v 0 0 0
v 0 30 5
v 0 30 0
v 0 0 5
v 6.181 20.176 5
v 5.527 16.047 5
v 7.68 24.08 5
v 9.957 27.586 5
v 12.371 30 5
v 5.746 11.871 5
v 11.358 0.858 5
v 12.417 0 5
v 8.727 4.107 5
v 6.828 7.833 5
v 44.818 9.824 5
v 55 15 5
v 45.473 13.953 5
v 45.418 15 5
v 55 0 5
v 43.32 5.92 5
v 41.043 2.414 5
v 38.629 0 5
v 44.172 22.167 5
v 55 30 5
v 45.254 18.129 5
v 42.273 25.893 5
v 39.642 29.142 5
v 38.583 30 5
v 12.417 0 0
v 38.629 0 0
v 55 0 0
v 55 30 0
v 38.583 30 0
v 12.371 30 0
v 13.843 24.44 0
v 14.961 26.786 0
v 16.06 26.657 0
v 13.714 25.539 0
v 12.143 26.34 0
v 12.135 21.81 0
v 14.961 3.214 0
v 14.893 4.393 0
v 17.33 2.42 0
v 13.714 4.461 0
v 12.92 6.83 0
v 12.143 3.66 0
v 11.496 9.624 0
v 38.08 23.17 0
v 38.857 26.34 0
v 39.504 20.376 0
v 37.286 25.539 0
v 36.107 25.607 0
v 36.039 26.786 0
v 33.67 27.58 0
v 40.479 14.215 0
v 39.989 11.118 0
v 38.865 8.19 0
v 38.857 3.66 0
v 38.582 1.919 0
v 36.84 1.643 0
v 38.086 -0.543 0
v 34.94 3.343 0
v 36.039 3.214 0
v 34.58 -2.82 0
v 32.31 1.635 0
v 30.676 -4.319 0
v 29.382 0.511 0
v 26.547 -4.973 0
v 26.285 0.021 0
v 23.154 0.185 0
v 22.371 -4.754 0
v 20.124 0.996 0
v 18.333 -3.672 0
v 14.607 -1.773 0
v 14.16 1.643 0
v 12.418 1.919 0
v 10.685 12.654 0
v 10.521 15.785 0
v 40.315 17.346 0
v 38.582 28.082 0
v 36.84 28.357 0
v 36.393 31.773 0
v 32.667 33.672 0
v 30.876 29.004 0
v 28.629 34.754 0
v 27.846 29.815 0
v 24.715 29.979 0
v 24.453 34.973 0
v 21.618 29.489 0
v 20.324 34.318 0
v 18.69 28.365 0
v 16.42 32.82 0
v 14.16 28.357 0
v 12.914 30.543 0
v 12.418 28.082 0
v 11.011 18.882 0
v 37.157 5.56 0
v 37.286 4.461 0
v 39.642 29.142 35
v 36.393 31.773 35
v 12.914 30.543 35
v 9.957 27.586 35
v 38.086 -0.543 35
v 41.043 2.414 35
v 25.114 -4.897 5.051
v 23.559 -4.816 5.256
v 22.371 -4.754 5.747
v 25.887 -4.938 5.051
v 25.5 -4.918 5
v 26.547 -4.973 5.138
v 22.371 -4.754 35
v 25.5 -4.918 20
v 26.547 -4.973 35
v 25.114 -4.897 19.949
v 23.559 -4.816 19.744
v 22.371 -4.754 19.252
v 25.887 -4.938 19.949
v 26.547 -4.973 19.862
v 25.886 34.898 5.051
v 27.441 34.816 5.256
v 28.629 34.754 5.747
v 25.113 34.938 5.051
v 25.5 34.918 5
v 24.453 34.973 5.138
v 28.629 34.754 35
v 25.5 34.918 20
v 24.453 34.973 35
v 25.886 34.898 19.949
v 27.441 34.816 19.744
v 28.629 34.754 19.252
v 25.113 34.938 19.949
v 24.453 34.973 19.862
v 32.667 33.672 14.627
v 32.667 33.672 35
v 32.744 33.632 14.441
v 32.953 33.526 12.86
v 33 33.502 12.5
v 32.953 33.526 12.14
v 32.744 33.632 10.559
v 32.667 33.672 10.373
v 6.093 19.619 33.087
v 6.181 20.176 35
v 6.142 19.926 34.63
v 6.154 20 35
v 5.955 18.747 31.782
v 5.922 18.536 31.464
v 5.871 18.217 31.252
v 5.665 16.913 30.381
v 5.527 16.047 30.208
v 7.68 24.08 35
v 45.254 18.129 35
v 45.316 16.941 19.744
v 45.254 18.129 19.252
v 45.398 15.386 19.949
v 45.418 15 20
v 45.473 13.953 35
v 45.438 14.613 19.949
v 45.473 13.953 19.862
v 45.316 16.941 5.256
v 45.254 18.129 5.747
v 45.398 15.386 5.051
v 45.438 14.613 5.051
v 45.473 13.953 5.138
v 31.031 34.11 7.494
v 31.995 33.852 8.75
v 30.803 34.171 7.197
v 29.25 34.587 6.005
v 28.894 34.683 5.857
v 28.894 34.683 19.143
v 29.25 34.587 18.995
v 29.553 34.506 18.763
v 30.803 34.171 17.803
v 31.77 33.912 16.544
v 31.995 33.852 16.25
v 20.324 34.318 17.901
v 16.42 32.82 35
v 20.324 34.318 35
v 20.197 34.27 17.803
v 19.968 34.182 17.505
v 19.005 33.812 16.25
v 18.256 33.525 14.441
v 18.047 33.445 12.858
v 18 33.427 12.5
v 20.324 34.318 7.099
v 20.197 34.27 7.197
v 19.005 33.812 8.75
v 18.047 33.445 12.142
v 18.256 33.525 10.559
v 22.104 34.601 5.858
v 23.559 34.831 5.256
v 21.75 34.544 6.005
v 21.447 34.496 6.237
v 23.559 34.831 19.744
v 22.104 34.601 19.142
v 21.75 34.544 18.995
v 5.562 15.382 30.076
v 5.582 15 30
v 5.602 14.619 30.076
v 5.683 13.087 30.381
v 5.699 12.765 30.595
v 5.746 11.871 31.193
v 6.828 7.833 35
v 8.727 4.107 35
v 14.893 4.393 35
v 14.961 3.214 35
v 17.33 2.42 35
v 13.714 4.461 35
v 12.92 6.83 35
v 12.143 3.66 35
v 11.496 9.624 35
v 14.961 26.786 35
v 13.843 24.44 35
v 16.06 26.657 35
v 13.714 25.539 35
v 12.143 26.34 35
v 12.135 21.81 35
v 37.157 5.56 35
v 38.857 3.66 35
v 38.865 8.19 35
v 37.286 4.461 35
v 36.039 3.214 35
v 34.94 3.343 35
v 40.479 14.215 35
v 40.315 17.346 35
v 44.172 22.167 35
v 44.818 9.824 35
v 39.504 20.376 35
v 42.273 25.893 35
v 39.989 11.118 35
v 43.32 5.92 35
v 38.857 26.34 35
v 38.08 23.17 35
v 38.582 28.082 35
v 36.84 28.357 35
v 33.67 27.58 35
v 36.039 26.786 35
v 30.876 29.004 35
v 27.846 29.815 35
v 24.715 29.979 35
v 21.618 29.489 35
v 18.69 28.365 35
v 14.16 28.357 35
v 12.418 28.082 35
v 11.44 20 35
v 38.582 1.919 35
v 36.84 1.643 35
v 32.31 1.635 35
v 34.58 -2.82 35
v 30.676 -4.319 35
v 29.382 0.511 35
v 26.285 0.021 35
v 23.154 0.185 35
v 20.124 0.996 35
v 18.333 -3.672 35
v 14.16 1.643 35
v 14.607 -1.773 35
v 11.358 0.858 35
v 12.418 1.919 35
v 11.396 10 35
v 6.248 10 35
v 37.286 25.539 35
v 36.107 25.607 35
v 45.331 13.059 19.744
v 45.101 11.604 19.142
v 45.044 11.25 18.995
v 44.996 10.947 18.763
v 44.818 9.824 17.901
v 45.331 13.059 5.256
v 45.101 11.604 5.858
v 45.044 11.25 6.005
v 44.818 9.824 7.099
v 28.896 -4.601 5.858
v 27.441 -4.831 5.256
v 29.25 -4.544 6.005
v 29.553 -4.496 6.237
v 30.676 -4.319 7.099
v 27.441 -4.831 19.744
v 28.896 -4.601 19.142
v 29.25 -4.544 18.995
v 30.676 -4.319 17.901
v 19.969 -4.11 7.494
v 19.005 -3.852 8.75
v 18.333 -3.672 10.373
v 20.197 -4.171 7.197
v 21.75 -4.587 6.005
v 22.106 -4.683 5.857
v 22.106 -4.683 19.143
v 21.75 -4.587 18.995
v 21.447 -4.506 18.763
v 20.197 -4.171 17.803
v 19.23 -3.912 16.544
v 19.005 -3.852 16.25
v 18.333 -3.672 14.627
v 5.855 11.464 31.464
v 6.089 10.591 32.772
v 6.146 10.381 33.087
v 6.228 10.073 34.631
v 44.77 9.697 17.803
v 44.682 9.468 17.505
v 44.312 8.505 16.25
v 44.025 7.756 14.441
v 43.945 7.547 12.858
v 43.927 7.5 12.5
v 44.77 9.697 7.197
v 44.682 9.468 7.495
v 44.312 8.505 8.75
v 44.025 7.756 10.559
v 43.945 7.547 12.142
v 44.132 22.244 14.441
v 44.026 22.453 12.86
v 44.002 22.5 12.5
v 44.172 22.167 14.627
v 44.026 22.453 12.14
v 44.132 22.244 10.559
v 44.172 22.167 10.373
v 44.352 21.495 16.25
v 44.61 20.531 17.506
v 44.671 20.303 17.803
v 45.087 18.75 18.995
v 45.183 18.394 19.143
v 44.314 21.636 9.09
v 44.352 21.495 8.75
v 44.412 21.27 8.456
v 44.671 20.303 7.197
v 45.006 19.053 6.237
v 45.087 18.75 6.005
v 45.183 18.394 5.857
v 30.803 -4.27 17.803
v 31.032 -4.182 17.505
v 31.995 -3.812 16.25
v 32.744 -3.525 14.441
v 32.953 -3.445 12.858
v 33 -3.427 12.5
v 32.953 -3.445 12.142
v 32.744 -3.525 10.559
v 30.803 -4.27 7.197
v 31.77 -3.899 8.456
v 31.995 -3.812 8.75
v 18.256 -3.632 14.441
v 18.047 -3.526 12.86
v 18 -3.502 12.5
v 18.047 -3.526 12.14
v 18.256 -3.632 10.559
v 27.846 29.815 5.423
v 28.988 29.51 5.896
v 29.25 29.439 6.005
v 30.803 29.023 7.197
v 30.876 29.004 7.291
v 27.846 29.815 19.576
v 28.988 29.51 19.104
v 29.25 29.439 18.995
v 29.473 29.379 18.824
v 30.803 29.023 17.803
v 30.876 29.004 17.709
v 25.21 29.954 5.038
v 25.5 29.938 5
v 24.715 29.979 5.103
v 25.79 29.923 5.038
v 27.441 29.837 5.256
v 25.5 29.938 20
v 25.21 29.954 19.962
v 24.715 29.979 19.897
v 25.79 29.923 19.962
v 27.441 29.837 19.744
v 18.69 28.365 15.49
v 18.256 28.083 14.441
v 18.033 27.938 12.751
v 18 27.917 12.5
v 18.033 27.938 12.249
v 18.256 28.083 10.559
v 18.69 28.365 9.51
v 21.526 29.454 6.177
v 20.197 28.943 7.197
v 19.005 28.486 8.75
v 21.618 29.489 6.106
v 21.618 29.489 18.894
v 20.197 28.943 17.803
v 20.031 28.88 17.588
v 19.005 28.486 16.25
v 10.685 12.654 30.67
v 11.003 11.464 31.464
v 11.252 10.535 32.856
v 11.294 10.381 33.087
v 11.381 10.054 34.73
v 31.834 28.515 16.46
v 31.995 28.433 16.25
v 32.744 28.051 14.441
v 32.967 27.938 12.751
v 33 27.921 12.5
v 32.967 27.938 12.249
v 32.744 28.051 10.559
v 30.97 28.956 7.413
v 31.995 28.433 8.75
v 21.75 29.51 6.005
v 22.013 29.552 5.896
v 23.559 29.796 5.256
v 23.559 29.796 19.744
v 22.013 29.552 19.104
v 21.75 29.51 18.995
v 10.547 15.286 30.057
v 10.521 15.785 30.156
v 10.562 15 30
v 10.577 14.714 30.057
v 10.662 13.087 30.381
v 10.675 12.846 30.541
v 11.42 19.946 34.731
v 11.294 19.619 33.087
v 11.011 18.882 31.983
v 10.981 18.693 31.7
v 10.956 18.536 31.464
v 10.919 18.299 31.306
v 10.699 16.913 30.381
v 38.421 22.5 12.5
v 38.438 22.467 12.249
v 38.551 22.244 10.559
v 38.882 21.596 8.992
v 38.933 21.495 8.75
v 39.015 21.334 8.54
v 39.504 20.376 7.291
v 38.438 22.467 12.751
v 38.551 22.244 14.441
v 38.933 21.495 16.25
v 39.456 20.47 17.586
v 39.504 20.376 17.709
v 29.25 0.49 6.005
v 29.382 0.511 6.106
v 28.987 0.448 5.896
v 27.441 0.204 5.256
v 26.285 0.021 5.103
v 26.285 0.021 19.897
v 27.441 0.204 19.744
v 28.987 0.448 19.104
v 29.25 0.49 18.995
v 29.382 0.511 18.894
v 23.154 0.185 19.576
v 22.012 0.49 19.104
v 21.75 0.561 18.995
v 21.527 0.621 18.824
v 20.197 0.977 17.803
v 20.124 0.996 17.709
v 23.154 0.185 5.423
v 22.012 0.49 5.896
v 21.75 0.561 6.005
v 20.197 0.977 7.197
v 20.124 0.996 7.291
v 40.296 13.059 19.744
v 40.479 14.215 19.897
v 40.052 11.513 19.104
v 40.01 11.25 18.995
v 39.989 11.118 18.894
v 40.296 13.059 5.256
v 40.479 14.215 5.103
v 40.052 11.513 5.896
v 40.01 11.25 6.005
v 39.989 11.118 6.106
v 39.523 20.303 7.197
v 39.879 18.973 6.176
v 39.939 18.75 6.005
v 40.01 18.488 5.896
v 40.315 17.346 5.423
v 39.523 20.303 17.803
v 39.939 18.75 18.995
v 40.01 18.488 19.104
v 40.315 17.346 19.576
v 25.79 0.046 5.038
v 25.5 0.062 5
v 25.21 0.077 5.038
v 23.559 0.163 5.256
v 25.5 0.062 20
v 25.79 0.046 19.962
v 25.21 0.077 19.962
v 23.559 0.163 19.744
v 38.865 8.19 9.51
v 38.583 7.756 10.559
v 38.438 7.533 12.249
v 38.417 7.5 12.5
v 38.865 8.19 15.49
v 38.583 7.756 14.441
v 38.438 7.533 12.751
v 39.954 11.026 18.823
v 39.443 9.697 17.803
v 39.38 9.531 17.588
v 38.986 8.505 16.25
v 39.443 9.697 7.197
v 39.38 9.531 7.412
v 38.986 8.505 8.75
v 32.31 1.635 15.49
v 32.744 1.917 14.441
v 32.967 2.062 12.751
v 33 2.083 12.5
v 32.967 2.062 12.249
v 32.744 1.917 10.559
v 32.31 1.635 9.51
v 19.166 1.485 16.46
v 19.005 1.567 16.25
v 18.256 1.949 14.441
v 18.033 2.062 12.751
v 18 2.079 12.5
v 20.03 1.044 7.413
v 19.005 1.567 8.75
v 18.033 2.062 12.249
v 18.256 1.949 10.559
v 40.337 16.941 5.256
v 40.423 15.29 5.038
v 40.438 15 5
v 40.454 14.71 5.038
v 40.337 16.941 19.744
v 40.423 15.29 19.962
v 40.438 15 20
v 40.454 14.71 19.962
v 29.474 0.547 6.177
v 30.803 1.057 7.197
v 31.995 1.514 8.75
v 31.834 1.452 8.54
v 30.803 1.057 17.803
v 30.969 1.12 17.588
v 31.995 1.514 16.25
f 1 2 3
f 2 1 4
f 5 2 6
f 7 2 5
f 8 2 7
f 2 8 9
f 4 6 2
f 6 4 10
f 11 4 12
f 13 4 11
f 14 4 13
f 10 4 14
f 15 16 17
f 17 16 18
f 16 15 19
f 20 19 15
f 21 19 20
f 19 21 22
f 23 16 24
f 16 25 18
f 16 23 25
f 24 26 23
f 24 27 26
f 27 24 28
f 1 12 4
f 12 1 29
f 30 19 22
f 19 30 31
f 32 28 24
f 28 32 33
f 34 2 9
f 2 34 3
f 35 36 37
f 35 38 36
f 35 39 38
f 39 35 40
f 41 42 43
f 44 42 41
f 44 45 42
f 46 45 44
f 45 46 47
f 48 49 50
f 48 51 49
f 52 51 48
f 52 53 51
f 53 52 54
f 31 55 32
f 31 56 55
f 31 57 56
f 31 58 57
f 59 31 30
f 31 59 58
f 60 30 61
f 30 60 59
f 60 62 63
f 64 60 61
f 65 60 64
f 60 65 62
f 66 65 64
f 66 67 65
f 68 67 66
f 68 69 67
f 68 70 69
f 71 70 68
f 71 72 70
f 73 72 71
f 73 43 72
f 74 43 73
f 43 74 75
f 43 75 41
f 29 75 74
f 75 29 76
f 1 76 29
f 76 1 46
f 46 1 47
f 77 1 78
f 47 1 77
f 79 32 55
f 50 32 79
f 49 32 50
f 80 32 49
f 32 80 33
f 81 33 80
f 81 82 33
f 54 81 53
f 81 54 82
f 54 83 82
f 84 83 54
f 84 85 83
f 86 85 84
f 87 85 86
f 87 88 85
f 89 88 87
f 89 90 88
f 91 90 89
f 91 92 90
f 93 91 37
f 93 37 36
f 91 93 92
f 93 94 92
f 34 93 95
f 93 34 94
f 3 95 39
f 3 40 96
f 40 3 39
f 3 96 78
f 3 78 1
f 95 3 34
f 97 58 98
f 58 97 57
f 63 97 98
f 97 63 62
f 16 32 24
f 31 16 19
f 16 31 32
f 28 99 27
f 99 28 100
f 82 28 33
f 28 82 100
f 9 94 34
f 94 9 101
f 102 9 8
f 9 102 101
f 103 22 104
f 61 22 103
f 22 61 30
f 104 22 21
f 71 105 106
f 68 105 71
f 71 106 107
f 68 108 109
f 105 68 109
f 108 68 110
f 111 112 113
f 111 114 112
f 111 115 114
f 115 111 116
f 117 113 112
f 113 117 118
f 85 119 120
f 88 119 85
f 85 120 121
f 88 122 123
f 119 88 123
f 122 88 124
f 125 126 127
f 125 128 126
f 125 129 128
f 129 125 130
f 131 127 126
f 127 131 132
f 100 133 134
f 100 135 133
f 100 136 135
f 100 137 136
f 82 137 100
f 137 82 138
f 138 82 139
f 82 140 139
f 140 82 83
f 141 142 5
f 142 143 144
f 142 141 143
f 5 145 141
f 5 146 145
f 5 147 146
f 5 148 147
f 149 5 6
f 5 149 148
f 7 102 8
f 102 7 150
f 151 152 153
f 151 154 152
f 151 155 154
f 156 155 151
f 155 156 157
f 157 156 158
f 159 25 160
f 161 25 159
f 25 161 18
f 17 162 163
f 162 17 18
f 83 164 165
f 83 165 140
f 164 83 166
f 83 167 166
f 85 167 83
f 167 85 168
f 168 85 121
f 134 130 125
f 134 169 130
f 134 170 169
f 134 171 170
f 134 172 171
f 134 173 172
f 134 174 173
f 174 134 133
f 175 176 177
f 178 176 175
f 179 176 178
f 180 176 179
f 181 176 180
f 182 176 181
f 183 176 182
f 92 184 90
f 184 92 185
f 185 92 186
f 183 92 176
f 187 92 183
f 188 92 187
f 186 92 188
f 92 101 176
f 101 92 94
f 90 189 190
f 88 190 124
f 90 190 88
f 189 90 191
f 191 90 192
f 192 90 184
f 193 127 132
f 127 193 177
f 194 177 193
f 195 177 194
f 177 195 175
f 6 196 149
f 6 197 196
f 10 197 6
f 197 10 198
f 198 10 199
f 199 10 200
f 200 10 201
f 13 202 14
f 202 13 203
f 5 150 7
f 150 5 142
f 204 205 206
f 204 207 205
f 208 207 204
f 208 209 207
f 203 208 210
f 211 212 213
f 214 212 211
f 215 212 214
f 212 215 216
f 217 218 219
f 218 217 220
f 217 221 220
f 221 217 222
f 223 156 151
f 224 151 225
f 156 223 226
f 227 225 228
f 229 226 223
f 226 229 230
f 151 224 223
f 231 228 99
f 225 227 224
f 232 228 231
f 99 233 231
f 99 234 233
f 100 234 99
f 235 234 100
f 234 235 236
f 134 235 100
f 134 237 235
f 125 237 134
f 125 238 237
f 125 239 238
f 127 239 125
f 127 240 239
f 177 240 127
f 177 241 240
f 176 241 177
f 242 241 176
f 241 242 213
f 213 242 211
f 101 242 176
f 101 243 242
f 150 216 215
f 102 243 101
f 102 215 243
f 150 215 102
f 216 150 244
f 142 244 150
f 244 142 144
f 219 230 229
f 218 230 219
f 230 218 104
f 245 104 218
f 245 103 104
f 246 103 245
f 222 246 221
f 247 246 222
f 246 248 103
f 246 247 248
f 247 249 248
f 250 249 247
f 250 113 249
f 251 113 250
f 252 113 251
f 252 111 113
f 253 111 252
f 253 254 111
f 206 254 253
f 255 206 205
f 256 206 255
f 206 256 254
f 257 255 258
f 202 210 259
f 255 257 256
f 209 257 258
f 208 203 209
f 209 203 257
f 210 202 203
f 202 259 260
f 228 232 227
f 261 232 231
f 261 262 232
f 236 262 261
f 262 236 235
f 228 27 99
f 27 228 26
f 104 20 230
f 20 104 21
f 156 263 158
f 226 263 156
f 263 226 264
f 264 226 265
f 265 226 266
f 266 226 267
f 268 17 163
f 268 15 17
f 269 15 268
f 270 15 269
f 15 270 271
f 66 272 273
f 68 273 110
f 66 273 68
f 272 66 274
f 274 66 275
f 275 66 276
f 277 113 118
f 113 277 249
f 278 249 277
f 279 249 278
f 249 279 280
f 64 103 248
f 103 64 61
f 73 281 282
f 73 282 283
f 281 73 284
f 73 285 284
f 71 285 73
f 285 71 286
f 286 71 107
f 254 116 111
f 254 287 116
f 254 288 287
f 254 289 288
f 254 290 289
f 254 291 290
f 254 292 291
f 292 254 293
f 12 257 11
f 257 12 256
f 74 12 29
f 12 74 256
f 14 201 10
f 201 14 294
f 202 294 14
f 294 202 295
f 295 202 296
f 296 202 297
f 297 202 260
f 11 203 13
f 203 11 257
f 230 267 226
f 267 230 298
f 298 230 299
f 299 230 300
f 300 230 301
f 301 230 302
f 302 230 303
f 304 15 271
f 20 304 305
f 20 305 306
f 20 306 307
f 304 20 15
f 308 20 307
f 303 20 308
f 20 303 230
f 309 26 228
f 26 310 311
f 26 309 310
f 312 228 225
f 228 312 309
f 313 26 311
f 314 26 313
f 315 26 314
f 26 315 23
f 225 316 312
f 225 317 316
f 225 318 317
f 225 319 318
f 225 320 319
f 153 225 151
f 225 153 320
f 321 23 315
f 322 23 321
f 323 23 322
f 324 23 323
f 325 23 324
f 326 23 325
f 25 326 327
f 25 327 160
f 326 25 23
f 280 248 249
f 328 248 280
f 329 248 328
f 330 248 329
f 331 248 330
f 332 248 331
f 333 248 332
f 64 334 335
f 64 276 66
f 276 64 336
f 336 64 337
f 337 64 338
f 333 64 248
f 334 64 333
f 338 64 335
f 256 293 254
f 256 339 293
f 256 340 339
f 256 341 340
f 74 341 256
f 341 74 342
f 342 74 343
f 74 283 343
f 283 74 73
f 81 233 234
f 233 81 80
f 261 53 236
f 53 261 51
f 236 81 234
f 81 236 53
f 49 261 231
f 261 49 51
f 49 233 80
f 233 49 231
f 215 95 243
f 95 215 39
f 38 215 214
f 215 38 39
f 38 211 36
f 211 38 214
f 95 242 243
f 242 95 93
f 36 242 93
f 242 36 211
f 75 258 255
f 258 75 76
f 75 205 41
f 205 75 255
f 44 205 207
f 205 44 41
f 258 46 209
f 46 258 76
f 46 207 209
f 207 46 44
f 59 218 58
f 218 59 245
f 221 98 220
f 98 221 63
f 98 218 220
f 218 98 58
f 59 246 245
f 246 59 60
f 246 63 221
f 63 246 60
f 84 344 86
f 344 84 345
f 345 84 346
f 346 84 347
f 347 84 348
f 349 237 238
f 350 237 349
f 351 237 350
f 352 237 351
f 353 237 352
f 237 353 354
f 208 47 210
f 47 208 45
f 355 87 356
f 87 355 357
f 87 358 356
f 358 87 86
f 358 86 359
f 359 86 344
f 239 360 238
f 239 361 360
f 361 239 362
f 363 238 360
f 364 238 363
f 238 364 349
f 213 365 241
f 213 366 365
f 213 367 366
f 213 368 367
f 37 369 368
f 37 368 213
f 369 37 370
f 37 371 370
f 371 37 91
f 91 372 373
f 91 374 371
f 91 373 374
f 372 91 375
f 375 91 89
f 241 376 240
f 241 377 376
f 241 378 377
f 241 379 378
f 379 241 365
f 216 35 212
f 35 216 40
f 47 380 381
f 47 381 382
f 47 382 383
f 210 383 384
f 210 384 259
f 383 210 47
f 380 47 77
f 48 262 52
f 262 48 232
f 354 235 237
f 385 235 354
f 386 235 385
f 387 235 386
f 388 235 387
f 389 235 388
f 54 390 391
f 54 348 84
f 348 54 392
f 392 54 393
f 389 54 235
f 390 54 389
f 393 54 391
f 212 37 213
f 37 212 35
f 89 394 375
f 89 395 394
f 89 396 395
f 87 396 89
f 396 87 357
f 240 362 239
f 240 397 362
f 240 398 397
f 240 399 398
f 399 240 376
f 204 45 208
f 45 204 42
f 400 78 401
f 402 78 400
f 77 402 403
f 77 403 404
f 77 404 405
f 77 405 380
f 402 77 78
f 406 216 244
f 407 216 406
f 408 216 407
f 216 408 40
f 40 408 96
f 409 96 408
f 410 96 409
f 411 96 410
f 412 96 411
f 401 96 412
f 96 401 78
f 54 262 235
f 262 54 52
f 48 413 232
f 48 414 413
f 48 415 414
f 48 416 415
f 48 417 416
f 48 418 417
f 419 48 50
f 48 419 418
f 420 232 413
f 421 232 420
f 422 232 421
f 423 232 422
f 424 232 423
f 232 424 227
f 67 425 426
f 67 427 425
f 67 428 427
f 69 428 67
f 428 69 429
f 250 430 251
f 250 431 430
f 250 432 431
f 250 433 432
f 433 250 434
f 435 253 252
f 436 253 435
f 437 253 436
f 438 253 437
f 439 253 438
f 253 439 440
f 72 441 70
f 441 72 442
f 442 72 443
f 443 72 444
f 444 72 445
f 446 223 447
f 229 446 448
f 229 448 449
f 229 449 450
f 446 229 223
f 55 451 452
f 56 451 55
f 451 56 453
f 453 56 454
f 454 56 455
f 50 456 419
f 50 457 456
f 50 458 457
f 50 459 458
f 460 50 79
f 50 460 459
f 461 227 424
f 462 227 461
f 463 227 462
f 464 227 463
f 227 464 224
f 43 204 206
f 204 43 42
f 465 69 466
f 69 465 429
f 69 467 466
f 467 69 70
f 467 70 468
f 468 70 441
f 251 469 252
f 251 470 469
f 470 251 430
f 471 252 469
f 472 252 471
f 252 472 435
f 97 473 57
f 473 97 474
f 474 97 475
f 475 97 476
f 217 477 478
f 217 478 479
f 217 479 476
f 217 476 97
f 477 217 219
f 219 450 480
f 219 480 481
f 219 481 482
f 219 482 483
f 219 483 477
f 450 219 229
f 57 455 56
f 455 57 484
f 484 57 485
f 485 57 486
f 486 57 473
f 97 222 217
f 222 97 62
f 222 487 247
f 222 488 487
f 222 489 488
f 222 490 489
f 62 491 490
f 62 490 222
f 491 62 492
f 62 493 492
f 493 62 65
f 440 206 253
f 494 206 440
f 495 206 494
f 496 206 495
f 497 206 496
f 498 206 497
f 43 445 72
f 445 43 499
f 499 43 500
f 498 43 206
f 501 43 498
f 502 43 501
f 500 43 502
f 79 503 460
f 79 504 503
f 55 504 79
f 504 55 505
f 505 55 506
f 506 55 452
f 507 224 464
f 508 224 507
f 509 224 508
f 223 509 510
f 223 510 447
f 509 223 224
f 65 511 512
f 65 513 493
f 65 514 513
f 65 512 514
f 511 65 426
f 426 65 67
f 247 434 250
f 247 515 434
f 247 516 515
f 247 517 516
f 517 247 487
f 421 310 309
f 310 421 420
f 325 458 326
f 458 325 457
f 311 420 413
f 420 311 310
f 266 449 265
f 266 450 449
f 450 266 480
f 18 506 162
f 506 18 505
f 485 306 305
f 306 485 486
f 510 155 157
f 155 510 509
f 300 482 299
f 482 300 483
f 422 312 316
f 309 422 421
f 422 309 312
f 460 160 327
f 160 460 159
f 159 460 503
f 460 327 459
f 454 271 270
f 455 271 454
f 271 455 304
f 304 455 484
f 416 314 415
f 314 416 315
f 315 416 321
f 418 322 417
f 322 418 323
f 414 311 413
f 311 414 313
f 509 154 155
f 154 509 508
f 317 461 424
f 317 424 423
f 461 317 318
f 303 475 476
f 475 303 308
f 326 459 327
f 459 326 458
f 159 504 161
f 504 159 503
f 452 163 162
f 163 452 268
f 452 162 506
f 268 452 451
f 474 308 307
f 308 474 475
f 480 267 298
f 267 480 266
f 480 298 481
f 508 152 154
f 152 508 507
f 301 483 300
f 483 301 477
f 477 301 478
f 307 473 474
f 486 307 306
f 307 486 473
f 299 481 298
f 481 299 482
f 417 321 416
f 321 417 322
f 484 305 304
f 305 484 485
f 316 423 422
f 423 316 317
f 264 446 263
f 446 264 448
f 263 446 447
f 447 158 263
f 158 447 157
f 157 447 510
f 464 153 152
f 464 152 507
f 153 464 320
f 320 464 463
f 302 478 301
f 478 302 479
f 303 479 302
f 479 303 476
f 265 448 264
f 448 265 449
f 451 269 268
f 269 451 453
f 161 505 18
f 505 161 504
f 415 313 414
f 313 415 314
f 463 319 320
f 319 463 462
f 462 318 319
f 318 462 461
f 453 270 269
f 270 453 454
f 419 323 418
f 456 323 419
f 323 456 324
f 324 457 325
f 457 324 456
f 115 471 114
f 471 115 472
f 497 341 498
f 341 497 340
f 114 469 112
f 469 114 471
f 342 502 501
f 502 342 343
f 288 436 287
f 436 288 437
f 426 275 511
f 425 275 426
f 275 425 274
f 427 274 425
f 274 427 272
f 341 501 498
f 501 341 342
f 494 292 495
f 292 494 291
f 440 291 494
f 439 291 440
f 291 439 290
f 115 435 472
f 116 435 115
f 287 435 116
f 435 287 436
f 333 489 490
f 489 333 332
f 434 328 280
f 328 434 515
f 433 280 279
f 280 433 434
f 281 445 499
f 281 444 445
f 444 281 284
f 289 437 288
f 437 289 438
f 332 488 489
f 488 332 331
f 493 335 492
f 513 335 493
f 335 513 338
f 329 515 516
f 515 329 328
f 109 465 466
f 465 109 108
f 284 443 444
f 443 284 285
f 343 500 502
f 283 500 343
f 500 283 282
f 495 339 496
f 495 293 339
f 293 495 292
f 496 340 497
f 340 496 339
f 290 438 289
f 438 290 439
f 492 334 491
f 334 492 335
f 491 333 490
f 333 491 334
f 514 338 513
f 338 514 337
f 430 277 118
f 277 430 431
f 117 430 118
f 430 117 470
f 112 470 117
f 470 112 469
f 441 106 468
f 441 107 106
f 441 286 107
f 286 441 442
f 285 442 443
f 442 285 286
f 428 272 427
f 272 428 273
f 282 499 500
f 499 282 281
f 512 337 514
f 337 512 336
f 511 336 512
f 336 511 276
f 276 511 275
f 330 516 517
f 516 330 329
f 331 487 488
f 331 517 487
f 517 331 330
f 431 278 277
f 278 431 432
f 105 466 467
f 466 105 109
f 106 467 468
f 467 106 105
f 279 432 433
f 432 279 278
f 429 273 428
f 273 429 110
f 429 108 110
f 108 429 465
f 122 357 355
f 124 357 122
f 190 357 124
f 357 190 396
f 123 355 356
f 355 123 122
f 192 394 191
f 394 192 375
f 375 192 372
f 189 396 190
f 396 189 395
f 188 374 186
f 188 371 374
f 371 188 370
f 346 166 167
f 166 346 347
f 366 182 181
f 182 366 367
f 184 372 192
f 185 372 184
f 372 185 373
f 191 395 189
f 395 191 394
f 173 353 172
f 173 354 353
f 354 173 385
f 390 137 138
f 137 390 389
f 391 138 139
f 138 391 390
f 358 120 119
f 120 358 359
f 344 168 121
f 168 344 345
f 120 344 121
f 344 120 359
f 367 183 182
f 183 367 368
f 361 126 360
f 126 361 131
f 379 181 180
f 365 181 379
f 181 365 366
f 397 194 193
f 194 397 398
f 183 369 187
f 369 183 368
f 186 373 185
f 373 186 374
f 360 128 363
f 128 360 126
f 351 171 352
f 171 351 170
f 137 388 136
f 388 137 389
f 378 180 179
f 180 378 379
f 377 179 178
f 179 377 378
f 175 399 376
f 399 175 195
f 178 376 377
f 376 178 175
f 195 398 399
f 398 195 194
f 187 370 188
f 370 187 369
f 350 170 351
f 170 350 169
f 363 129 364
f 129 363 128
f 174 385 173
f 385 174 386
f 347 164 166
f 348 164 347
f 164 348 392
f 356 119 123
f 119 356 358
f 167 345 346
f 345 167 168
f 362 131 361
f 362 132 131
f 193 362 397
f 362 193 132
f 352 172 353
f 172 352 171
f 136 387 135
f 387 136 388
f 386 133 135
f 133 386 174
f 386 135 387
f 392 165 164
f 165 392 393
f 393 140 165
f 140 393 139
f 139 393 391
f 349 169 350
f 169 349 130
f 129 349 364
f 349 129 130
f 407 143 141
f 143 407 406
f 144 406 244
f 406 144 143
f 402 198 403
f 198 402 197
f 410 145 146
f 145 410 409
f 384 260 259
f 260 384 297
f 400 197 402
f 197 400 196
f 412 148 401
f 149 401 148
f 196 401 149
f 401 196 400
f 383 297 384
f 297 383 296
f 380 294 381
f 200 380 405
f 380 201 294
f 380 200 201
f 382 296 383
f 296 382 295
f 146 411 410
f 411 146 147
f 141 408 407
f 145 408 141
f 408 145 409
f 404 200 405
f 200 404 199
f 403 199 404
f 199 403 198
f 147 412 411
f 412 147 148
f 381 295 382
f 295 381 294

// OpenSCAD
// file: motor.scad
/*
    Motor mounts for the OpenSCAD aeroplane

    Copyright (C) Tim Molteno, tim@molteno.net

    
    This program is free software: you can redistribute it and/or modify
    it under the terms of the GNU General Public License as published by
    the Free Software Foundation, either version 3 of the License, or
    (at your option) any later version.

    This program is distributed in the hope that it will be useful,
    but WITHOUT ANY WARRANTY; without even the implied warranty of
    MERCHANTABILITY or FITNESS FOR A PARTICULAR PURPOSE.  See the
    GNU General Public License for more details.

    You should have received a copy of the GNU General Public License
    along with this program.  If not, see <http://www.gnu.org/licenses/>.
*/

module motor_mount() {
  difference() {
    union() {
      cylinder(r=6.5, h=10);
      translate([0,0,0.75]) cube([26,7 ,1.5], center=true);
      translate([0,0,0.75]) cube([7, 26,1.5], center=true);
    }
    cylinder(r=4, h=12, center=true);
    for (angle = [0,90,180,270]) {
      rotate(angle) translate([10,0,0]) cylinder(r=1.5, h=5, center=true);
    }
  }
}

/* Turnigy 2730-1500 */
module motor() {
  rotate([0,90,0]) {
    motor_mount();
    color("silver") cylinder(r=1.5, h=42); // shaft
    color("gold") translate([0,0,3]) cylinder(r=4, h=15); // housing
    color("red") translate([0,0,18]) cylinder(r=13.5, h=10); // outrunner
    translate([0,0,28]) cylinder(r=4, h=4.5); // forward housing
  }
}


/* Turnigy nano-tech 300mAH 2S 35-70C */
module battery() {
  cube([46, 18,12.5], center=true);
}


/* Servo. Turnigy TG9e */

module servo() {
  translate([-6, -11.5,0]) cube([12, 23, 23]);
  translate([-6,-16.25,16.5]) cube([12, 32.5, 2]);
  translate([0,0,23]) cylinder(r=6, h=4);
  translate([0,0,27]) cylinder(r=2.5, h=2.5);
}

module servo_arm() {
  cylinder(r=3.5, h=4);
  translate([0,0,2.5]) hull() {
    cylinder(r=3.5, h=1.5);
    translate([14,0,0]) cylinder(r=2, h=1.5);
  }
}

motor();
// main file
use <motor.scad>;

width = 72;
radius = 17;
length = 65;

mount_offset = 17;

translateY = width-2*radius;
translateX = length-2*radius;
 module pillar() {
     difference() {
         cylinder(h=35, r=4, $fn=31);
     }
 } 
  module motorMount() {
     cylinder(r=20, h= 35);
  }

  module holes() {
     for (angle = [0,90,180,270]) {
      rotate(angle) translate([mount_offset,0,0]) cylinder(r=1.5, h = 100,center=true);
     }
     translate([0,0,-1])cylinder(d=30,h=100);
     translate([0,0,12.5])rotate([90,0,45])cylinder(d=15,h=100);
     translate([0,0,12.5])rotate([0,270,45])cylinder(d=15,h=100);
     translate([0,0,12.5])rotate([0,90,45])cylinder(d=15,h=100);
//     translate([0,0,12.5])rotate([270,0,45])cylinder(d=10,h=100);
     translate([0,0,35])rotate([270,0,45])cylinder(d=10,h=100);
 }
    
difference() {
    union() {
    hull() {
        cube([55,30,5]);
    }
    translate([translateX/2+10,translateY/2-4,0])rotate([0,0,45])motorMount();
    }
    translate([translateX/2+10,translateY/2-4])rotate([0,0,45])holes();
}
